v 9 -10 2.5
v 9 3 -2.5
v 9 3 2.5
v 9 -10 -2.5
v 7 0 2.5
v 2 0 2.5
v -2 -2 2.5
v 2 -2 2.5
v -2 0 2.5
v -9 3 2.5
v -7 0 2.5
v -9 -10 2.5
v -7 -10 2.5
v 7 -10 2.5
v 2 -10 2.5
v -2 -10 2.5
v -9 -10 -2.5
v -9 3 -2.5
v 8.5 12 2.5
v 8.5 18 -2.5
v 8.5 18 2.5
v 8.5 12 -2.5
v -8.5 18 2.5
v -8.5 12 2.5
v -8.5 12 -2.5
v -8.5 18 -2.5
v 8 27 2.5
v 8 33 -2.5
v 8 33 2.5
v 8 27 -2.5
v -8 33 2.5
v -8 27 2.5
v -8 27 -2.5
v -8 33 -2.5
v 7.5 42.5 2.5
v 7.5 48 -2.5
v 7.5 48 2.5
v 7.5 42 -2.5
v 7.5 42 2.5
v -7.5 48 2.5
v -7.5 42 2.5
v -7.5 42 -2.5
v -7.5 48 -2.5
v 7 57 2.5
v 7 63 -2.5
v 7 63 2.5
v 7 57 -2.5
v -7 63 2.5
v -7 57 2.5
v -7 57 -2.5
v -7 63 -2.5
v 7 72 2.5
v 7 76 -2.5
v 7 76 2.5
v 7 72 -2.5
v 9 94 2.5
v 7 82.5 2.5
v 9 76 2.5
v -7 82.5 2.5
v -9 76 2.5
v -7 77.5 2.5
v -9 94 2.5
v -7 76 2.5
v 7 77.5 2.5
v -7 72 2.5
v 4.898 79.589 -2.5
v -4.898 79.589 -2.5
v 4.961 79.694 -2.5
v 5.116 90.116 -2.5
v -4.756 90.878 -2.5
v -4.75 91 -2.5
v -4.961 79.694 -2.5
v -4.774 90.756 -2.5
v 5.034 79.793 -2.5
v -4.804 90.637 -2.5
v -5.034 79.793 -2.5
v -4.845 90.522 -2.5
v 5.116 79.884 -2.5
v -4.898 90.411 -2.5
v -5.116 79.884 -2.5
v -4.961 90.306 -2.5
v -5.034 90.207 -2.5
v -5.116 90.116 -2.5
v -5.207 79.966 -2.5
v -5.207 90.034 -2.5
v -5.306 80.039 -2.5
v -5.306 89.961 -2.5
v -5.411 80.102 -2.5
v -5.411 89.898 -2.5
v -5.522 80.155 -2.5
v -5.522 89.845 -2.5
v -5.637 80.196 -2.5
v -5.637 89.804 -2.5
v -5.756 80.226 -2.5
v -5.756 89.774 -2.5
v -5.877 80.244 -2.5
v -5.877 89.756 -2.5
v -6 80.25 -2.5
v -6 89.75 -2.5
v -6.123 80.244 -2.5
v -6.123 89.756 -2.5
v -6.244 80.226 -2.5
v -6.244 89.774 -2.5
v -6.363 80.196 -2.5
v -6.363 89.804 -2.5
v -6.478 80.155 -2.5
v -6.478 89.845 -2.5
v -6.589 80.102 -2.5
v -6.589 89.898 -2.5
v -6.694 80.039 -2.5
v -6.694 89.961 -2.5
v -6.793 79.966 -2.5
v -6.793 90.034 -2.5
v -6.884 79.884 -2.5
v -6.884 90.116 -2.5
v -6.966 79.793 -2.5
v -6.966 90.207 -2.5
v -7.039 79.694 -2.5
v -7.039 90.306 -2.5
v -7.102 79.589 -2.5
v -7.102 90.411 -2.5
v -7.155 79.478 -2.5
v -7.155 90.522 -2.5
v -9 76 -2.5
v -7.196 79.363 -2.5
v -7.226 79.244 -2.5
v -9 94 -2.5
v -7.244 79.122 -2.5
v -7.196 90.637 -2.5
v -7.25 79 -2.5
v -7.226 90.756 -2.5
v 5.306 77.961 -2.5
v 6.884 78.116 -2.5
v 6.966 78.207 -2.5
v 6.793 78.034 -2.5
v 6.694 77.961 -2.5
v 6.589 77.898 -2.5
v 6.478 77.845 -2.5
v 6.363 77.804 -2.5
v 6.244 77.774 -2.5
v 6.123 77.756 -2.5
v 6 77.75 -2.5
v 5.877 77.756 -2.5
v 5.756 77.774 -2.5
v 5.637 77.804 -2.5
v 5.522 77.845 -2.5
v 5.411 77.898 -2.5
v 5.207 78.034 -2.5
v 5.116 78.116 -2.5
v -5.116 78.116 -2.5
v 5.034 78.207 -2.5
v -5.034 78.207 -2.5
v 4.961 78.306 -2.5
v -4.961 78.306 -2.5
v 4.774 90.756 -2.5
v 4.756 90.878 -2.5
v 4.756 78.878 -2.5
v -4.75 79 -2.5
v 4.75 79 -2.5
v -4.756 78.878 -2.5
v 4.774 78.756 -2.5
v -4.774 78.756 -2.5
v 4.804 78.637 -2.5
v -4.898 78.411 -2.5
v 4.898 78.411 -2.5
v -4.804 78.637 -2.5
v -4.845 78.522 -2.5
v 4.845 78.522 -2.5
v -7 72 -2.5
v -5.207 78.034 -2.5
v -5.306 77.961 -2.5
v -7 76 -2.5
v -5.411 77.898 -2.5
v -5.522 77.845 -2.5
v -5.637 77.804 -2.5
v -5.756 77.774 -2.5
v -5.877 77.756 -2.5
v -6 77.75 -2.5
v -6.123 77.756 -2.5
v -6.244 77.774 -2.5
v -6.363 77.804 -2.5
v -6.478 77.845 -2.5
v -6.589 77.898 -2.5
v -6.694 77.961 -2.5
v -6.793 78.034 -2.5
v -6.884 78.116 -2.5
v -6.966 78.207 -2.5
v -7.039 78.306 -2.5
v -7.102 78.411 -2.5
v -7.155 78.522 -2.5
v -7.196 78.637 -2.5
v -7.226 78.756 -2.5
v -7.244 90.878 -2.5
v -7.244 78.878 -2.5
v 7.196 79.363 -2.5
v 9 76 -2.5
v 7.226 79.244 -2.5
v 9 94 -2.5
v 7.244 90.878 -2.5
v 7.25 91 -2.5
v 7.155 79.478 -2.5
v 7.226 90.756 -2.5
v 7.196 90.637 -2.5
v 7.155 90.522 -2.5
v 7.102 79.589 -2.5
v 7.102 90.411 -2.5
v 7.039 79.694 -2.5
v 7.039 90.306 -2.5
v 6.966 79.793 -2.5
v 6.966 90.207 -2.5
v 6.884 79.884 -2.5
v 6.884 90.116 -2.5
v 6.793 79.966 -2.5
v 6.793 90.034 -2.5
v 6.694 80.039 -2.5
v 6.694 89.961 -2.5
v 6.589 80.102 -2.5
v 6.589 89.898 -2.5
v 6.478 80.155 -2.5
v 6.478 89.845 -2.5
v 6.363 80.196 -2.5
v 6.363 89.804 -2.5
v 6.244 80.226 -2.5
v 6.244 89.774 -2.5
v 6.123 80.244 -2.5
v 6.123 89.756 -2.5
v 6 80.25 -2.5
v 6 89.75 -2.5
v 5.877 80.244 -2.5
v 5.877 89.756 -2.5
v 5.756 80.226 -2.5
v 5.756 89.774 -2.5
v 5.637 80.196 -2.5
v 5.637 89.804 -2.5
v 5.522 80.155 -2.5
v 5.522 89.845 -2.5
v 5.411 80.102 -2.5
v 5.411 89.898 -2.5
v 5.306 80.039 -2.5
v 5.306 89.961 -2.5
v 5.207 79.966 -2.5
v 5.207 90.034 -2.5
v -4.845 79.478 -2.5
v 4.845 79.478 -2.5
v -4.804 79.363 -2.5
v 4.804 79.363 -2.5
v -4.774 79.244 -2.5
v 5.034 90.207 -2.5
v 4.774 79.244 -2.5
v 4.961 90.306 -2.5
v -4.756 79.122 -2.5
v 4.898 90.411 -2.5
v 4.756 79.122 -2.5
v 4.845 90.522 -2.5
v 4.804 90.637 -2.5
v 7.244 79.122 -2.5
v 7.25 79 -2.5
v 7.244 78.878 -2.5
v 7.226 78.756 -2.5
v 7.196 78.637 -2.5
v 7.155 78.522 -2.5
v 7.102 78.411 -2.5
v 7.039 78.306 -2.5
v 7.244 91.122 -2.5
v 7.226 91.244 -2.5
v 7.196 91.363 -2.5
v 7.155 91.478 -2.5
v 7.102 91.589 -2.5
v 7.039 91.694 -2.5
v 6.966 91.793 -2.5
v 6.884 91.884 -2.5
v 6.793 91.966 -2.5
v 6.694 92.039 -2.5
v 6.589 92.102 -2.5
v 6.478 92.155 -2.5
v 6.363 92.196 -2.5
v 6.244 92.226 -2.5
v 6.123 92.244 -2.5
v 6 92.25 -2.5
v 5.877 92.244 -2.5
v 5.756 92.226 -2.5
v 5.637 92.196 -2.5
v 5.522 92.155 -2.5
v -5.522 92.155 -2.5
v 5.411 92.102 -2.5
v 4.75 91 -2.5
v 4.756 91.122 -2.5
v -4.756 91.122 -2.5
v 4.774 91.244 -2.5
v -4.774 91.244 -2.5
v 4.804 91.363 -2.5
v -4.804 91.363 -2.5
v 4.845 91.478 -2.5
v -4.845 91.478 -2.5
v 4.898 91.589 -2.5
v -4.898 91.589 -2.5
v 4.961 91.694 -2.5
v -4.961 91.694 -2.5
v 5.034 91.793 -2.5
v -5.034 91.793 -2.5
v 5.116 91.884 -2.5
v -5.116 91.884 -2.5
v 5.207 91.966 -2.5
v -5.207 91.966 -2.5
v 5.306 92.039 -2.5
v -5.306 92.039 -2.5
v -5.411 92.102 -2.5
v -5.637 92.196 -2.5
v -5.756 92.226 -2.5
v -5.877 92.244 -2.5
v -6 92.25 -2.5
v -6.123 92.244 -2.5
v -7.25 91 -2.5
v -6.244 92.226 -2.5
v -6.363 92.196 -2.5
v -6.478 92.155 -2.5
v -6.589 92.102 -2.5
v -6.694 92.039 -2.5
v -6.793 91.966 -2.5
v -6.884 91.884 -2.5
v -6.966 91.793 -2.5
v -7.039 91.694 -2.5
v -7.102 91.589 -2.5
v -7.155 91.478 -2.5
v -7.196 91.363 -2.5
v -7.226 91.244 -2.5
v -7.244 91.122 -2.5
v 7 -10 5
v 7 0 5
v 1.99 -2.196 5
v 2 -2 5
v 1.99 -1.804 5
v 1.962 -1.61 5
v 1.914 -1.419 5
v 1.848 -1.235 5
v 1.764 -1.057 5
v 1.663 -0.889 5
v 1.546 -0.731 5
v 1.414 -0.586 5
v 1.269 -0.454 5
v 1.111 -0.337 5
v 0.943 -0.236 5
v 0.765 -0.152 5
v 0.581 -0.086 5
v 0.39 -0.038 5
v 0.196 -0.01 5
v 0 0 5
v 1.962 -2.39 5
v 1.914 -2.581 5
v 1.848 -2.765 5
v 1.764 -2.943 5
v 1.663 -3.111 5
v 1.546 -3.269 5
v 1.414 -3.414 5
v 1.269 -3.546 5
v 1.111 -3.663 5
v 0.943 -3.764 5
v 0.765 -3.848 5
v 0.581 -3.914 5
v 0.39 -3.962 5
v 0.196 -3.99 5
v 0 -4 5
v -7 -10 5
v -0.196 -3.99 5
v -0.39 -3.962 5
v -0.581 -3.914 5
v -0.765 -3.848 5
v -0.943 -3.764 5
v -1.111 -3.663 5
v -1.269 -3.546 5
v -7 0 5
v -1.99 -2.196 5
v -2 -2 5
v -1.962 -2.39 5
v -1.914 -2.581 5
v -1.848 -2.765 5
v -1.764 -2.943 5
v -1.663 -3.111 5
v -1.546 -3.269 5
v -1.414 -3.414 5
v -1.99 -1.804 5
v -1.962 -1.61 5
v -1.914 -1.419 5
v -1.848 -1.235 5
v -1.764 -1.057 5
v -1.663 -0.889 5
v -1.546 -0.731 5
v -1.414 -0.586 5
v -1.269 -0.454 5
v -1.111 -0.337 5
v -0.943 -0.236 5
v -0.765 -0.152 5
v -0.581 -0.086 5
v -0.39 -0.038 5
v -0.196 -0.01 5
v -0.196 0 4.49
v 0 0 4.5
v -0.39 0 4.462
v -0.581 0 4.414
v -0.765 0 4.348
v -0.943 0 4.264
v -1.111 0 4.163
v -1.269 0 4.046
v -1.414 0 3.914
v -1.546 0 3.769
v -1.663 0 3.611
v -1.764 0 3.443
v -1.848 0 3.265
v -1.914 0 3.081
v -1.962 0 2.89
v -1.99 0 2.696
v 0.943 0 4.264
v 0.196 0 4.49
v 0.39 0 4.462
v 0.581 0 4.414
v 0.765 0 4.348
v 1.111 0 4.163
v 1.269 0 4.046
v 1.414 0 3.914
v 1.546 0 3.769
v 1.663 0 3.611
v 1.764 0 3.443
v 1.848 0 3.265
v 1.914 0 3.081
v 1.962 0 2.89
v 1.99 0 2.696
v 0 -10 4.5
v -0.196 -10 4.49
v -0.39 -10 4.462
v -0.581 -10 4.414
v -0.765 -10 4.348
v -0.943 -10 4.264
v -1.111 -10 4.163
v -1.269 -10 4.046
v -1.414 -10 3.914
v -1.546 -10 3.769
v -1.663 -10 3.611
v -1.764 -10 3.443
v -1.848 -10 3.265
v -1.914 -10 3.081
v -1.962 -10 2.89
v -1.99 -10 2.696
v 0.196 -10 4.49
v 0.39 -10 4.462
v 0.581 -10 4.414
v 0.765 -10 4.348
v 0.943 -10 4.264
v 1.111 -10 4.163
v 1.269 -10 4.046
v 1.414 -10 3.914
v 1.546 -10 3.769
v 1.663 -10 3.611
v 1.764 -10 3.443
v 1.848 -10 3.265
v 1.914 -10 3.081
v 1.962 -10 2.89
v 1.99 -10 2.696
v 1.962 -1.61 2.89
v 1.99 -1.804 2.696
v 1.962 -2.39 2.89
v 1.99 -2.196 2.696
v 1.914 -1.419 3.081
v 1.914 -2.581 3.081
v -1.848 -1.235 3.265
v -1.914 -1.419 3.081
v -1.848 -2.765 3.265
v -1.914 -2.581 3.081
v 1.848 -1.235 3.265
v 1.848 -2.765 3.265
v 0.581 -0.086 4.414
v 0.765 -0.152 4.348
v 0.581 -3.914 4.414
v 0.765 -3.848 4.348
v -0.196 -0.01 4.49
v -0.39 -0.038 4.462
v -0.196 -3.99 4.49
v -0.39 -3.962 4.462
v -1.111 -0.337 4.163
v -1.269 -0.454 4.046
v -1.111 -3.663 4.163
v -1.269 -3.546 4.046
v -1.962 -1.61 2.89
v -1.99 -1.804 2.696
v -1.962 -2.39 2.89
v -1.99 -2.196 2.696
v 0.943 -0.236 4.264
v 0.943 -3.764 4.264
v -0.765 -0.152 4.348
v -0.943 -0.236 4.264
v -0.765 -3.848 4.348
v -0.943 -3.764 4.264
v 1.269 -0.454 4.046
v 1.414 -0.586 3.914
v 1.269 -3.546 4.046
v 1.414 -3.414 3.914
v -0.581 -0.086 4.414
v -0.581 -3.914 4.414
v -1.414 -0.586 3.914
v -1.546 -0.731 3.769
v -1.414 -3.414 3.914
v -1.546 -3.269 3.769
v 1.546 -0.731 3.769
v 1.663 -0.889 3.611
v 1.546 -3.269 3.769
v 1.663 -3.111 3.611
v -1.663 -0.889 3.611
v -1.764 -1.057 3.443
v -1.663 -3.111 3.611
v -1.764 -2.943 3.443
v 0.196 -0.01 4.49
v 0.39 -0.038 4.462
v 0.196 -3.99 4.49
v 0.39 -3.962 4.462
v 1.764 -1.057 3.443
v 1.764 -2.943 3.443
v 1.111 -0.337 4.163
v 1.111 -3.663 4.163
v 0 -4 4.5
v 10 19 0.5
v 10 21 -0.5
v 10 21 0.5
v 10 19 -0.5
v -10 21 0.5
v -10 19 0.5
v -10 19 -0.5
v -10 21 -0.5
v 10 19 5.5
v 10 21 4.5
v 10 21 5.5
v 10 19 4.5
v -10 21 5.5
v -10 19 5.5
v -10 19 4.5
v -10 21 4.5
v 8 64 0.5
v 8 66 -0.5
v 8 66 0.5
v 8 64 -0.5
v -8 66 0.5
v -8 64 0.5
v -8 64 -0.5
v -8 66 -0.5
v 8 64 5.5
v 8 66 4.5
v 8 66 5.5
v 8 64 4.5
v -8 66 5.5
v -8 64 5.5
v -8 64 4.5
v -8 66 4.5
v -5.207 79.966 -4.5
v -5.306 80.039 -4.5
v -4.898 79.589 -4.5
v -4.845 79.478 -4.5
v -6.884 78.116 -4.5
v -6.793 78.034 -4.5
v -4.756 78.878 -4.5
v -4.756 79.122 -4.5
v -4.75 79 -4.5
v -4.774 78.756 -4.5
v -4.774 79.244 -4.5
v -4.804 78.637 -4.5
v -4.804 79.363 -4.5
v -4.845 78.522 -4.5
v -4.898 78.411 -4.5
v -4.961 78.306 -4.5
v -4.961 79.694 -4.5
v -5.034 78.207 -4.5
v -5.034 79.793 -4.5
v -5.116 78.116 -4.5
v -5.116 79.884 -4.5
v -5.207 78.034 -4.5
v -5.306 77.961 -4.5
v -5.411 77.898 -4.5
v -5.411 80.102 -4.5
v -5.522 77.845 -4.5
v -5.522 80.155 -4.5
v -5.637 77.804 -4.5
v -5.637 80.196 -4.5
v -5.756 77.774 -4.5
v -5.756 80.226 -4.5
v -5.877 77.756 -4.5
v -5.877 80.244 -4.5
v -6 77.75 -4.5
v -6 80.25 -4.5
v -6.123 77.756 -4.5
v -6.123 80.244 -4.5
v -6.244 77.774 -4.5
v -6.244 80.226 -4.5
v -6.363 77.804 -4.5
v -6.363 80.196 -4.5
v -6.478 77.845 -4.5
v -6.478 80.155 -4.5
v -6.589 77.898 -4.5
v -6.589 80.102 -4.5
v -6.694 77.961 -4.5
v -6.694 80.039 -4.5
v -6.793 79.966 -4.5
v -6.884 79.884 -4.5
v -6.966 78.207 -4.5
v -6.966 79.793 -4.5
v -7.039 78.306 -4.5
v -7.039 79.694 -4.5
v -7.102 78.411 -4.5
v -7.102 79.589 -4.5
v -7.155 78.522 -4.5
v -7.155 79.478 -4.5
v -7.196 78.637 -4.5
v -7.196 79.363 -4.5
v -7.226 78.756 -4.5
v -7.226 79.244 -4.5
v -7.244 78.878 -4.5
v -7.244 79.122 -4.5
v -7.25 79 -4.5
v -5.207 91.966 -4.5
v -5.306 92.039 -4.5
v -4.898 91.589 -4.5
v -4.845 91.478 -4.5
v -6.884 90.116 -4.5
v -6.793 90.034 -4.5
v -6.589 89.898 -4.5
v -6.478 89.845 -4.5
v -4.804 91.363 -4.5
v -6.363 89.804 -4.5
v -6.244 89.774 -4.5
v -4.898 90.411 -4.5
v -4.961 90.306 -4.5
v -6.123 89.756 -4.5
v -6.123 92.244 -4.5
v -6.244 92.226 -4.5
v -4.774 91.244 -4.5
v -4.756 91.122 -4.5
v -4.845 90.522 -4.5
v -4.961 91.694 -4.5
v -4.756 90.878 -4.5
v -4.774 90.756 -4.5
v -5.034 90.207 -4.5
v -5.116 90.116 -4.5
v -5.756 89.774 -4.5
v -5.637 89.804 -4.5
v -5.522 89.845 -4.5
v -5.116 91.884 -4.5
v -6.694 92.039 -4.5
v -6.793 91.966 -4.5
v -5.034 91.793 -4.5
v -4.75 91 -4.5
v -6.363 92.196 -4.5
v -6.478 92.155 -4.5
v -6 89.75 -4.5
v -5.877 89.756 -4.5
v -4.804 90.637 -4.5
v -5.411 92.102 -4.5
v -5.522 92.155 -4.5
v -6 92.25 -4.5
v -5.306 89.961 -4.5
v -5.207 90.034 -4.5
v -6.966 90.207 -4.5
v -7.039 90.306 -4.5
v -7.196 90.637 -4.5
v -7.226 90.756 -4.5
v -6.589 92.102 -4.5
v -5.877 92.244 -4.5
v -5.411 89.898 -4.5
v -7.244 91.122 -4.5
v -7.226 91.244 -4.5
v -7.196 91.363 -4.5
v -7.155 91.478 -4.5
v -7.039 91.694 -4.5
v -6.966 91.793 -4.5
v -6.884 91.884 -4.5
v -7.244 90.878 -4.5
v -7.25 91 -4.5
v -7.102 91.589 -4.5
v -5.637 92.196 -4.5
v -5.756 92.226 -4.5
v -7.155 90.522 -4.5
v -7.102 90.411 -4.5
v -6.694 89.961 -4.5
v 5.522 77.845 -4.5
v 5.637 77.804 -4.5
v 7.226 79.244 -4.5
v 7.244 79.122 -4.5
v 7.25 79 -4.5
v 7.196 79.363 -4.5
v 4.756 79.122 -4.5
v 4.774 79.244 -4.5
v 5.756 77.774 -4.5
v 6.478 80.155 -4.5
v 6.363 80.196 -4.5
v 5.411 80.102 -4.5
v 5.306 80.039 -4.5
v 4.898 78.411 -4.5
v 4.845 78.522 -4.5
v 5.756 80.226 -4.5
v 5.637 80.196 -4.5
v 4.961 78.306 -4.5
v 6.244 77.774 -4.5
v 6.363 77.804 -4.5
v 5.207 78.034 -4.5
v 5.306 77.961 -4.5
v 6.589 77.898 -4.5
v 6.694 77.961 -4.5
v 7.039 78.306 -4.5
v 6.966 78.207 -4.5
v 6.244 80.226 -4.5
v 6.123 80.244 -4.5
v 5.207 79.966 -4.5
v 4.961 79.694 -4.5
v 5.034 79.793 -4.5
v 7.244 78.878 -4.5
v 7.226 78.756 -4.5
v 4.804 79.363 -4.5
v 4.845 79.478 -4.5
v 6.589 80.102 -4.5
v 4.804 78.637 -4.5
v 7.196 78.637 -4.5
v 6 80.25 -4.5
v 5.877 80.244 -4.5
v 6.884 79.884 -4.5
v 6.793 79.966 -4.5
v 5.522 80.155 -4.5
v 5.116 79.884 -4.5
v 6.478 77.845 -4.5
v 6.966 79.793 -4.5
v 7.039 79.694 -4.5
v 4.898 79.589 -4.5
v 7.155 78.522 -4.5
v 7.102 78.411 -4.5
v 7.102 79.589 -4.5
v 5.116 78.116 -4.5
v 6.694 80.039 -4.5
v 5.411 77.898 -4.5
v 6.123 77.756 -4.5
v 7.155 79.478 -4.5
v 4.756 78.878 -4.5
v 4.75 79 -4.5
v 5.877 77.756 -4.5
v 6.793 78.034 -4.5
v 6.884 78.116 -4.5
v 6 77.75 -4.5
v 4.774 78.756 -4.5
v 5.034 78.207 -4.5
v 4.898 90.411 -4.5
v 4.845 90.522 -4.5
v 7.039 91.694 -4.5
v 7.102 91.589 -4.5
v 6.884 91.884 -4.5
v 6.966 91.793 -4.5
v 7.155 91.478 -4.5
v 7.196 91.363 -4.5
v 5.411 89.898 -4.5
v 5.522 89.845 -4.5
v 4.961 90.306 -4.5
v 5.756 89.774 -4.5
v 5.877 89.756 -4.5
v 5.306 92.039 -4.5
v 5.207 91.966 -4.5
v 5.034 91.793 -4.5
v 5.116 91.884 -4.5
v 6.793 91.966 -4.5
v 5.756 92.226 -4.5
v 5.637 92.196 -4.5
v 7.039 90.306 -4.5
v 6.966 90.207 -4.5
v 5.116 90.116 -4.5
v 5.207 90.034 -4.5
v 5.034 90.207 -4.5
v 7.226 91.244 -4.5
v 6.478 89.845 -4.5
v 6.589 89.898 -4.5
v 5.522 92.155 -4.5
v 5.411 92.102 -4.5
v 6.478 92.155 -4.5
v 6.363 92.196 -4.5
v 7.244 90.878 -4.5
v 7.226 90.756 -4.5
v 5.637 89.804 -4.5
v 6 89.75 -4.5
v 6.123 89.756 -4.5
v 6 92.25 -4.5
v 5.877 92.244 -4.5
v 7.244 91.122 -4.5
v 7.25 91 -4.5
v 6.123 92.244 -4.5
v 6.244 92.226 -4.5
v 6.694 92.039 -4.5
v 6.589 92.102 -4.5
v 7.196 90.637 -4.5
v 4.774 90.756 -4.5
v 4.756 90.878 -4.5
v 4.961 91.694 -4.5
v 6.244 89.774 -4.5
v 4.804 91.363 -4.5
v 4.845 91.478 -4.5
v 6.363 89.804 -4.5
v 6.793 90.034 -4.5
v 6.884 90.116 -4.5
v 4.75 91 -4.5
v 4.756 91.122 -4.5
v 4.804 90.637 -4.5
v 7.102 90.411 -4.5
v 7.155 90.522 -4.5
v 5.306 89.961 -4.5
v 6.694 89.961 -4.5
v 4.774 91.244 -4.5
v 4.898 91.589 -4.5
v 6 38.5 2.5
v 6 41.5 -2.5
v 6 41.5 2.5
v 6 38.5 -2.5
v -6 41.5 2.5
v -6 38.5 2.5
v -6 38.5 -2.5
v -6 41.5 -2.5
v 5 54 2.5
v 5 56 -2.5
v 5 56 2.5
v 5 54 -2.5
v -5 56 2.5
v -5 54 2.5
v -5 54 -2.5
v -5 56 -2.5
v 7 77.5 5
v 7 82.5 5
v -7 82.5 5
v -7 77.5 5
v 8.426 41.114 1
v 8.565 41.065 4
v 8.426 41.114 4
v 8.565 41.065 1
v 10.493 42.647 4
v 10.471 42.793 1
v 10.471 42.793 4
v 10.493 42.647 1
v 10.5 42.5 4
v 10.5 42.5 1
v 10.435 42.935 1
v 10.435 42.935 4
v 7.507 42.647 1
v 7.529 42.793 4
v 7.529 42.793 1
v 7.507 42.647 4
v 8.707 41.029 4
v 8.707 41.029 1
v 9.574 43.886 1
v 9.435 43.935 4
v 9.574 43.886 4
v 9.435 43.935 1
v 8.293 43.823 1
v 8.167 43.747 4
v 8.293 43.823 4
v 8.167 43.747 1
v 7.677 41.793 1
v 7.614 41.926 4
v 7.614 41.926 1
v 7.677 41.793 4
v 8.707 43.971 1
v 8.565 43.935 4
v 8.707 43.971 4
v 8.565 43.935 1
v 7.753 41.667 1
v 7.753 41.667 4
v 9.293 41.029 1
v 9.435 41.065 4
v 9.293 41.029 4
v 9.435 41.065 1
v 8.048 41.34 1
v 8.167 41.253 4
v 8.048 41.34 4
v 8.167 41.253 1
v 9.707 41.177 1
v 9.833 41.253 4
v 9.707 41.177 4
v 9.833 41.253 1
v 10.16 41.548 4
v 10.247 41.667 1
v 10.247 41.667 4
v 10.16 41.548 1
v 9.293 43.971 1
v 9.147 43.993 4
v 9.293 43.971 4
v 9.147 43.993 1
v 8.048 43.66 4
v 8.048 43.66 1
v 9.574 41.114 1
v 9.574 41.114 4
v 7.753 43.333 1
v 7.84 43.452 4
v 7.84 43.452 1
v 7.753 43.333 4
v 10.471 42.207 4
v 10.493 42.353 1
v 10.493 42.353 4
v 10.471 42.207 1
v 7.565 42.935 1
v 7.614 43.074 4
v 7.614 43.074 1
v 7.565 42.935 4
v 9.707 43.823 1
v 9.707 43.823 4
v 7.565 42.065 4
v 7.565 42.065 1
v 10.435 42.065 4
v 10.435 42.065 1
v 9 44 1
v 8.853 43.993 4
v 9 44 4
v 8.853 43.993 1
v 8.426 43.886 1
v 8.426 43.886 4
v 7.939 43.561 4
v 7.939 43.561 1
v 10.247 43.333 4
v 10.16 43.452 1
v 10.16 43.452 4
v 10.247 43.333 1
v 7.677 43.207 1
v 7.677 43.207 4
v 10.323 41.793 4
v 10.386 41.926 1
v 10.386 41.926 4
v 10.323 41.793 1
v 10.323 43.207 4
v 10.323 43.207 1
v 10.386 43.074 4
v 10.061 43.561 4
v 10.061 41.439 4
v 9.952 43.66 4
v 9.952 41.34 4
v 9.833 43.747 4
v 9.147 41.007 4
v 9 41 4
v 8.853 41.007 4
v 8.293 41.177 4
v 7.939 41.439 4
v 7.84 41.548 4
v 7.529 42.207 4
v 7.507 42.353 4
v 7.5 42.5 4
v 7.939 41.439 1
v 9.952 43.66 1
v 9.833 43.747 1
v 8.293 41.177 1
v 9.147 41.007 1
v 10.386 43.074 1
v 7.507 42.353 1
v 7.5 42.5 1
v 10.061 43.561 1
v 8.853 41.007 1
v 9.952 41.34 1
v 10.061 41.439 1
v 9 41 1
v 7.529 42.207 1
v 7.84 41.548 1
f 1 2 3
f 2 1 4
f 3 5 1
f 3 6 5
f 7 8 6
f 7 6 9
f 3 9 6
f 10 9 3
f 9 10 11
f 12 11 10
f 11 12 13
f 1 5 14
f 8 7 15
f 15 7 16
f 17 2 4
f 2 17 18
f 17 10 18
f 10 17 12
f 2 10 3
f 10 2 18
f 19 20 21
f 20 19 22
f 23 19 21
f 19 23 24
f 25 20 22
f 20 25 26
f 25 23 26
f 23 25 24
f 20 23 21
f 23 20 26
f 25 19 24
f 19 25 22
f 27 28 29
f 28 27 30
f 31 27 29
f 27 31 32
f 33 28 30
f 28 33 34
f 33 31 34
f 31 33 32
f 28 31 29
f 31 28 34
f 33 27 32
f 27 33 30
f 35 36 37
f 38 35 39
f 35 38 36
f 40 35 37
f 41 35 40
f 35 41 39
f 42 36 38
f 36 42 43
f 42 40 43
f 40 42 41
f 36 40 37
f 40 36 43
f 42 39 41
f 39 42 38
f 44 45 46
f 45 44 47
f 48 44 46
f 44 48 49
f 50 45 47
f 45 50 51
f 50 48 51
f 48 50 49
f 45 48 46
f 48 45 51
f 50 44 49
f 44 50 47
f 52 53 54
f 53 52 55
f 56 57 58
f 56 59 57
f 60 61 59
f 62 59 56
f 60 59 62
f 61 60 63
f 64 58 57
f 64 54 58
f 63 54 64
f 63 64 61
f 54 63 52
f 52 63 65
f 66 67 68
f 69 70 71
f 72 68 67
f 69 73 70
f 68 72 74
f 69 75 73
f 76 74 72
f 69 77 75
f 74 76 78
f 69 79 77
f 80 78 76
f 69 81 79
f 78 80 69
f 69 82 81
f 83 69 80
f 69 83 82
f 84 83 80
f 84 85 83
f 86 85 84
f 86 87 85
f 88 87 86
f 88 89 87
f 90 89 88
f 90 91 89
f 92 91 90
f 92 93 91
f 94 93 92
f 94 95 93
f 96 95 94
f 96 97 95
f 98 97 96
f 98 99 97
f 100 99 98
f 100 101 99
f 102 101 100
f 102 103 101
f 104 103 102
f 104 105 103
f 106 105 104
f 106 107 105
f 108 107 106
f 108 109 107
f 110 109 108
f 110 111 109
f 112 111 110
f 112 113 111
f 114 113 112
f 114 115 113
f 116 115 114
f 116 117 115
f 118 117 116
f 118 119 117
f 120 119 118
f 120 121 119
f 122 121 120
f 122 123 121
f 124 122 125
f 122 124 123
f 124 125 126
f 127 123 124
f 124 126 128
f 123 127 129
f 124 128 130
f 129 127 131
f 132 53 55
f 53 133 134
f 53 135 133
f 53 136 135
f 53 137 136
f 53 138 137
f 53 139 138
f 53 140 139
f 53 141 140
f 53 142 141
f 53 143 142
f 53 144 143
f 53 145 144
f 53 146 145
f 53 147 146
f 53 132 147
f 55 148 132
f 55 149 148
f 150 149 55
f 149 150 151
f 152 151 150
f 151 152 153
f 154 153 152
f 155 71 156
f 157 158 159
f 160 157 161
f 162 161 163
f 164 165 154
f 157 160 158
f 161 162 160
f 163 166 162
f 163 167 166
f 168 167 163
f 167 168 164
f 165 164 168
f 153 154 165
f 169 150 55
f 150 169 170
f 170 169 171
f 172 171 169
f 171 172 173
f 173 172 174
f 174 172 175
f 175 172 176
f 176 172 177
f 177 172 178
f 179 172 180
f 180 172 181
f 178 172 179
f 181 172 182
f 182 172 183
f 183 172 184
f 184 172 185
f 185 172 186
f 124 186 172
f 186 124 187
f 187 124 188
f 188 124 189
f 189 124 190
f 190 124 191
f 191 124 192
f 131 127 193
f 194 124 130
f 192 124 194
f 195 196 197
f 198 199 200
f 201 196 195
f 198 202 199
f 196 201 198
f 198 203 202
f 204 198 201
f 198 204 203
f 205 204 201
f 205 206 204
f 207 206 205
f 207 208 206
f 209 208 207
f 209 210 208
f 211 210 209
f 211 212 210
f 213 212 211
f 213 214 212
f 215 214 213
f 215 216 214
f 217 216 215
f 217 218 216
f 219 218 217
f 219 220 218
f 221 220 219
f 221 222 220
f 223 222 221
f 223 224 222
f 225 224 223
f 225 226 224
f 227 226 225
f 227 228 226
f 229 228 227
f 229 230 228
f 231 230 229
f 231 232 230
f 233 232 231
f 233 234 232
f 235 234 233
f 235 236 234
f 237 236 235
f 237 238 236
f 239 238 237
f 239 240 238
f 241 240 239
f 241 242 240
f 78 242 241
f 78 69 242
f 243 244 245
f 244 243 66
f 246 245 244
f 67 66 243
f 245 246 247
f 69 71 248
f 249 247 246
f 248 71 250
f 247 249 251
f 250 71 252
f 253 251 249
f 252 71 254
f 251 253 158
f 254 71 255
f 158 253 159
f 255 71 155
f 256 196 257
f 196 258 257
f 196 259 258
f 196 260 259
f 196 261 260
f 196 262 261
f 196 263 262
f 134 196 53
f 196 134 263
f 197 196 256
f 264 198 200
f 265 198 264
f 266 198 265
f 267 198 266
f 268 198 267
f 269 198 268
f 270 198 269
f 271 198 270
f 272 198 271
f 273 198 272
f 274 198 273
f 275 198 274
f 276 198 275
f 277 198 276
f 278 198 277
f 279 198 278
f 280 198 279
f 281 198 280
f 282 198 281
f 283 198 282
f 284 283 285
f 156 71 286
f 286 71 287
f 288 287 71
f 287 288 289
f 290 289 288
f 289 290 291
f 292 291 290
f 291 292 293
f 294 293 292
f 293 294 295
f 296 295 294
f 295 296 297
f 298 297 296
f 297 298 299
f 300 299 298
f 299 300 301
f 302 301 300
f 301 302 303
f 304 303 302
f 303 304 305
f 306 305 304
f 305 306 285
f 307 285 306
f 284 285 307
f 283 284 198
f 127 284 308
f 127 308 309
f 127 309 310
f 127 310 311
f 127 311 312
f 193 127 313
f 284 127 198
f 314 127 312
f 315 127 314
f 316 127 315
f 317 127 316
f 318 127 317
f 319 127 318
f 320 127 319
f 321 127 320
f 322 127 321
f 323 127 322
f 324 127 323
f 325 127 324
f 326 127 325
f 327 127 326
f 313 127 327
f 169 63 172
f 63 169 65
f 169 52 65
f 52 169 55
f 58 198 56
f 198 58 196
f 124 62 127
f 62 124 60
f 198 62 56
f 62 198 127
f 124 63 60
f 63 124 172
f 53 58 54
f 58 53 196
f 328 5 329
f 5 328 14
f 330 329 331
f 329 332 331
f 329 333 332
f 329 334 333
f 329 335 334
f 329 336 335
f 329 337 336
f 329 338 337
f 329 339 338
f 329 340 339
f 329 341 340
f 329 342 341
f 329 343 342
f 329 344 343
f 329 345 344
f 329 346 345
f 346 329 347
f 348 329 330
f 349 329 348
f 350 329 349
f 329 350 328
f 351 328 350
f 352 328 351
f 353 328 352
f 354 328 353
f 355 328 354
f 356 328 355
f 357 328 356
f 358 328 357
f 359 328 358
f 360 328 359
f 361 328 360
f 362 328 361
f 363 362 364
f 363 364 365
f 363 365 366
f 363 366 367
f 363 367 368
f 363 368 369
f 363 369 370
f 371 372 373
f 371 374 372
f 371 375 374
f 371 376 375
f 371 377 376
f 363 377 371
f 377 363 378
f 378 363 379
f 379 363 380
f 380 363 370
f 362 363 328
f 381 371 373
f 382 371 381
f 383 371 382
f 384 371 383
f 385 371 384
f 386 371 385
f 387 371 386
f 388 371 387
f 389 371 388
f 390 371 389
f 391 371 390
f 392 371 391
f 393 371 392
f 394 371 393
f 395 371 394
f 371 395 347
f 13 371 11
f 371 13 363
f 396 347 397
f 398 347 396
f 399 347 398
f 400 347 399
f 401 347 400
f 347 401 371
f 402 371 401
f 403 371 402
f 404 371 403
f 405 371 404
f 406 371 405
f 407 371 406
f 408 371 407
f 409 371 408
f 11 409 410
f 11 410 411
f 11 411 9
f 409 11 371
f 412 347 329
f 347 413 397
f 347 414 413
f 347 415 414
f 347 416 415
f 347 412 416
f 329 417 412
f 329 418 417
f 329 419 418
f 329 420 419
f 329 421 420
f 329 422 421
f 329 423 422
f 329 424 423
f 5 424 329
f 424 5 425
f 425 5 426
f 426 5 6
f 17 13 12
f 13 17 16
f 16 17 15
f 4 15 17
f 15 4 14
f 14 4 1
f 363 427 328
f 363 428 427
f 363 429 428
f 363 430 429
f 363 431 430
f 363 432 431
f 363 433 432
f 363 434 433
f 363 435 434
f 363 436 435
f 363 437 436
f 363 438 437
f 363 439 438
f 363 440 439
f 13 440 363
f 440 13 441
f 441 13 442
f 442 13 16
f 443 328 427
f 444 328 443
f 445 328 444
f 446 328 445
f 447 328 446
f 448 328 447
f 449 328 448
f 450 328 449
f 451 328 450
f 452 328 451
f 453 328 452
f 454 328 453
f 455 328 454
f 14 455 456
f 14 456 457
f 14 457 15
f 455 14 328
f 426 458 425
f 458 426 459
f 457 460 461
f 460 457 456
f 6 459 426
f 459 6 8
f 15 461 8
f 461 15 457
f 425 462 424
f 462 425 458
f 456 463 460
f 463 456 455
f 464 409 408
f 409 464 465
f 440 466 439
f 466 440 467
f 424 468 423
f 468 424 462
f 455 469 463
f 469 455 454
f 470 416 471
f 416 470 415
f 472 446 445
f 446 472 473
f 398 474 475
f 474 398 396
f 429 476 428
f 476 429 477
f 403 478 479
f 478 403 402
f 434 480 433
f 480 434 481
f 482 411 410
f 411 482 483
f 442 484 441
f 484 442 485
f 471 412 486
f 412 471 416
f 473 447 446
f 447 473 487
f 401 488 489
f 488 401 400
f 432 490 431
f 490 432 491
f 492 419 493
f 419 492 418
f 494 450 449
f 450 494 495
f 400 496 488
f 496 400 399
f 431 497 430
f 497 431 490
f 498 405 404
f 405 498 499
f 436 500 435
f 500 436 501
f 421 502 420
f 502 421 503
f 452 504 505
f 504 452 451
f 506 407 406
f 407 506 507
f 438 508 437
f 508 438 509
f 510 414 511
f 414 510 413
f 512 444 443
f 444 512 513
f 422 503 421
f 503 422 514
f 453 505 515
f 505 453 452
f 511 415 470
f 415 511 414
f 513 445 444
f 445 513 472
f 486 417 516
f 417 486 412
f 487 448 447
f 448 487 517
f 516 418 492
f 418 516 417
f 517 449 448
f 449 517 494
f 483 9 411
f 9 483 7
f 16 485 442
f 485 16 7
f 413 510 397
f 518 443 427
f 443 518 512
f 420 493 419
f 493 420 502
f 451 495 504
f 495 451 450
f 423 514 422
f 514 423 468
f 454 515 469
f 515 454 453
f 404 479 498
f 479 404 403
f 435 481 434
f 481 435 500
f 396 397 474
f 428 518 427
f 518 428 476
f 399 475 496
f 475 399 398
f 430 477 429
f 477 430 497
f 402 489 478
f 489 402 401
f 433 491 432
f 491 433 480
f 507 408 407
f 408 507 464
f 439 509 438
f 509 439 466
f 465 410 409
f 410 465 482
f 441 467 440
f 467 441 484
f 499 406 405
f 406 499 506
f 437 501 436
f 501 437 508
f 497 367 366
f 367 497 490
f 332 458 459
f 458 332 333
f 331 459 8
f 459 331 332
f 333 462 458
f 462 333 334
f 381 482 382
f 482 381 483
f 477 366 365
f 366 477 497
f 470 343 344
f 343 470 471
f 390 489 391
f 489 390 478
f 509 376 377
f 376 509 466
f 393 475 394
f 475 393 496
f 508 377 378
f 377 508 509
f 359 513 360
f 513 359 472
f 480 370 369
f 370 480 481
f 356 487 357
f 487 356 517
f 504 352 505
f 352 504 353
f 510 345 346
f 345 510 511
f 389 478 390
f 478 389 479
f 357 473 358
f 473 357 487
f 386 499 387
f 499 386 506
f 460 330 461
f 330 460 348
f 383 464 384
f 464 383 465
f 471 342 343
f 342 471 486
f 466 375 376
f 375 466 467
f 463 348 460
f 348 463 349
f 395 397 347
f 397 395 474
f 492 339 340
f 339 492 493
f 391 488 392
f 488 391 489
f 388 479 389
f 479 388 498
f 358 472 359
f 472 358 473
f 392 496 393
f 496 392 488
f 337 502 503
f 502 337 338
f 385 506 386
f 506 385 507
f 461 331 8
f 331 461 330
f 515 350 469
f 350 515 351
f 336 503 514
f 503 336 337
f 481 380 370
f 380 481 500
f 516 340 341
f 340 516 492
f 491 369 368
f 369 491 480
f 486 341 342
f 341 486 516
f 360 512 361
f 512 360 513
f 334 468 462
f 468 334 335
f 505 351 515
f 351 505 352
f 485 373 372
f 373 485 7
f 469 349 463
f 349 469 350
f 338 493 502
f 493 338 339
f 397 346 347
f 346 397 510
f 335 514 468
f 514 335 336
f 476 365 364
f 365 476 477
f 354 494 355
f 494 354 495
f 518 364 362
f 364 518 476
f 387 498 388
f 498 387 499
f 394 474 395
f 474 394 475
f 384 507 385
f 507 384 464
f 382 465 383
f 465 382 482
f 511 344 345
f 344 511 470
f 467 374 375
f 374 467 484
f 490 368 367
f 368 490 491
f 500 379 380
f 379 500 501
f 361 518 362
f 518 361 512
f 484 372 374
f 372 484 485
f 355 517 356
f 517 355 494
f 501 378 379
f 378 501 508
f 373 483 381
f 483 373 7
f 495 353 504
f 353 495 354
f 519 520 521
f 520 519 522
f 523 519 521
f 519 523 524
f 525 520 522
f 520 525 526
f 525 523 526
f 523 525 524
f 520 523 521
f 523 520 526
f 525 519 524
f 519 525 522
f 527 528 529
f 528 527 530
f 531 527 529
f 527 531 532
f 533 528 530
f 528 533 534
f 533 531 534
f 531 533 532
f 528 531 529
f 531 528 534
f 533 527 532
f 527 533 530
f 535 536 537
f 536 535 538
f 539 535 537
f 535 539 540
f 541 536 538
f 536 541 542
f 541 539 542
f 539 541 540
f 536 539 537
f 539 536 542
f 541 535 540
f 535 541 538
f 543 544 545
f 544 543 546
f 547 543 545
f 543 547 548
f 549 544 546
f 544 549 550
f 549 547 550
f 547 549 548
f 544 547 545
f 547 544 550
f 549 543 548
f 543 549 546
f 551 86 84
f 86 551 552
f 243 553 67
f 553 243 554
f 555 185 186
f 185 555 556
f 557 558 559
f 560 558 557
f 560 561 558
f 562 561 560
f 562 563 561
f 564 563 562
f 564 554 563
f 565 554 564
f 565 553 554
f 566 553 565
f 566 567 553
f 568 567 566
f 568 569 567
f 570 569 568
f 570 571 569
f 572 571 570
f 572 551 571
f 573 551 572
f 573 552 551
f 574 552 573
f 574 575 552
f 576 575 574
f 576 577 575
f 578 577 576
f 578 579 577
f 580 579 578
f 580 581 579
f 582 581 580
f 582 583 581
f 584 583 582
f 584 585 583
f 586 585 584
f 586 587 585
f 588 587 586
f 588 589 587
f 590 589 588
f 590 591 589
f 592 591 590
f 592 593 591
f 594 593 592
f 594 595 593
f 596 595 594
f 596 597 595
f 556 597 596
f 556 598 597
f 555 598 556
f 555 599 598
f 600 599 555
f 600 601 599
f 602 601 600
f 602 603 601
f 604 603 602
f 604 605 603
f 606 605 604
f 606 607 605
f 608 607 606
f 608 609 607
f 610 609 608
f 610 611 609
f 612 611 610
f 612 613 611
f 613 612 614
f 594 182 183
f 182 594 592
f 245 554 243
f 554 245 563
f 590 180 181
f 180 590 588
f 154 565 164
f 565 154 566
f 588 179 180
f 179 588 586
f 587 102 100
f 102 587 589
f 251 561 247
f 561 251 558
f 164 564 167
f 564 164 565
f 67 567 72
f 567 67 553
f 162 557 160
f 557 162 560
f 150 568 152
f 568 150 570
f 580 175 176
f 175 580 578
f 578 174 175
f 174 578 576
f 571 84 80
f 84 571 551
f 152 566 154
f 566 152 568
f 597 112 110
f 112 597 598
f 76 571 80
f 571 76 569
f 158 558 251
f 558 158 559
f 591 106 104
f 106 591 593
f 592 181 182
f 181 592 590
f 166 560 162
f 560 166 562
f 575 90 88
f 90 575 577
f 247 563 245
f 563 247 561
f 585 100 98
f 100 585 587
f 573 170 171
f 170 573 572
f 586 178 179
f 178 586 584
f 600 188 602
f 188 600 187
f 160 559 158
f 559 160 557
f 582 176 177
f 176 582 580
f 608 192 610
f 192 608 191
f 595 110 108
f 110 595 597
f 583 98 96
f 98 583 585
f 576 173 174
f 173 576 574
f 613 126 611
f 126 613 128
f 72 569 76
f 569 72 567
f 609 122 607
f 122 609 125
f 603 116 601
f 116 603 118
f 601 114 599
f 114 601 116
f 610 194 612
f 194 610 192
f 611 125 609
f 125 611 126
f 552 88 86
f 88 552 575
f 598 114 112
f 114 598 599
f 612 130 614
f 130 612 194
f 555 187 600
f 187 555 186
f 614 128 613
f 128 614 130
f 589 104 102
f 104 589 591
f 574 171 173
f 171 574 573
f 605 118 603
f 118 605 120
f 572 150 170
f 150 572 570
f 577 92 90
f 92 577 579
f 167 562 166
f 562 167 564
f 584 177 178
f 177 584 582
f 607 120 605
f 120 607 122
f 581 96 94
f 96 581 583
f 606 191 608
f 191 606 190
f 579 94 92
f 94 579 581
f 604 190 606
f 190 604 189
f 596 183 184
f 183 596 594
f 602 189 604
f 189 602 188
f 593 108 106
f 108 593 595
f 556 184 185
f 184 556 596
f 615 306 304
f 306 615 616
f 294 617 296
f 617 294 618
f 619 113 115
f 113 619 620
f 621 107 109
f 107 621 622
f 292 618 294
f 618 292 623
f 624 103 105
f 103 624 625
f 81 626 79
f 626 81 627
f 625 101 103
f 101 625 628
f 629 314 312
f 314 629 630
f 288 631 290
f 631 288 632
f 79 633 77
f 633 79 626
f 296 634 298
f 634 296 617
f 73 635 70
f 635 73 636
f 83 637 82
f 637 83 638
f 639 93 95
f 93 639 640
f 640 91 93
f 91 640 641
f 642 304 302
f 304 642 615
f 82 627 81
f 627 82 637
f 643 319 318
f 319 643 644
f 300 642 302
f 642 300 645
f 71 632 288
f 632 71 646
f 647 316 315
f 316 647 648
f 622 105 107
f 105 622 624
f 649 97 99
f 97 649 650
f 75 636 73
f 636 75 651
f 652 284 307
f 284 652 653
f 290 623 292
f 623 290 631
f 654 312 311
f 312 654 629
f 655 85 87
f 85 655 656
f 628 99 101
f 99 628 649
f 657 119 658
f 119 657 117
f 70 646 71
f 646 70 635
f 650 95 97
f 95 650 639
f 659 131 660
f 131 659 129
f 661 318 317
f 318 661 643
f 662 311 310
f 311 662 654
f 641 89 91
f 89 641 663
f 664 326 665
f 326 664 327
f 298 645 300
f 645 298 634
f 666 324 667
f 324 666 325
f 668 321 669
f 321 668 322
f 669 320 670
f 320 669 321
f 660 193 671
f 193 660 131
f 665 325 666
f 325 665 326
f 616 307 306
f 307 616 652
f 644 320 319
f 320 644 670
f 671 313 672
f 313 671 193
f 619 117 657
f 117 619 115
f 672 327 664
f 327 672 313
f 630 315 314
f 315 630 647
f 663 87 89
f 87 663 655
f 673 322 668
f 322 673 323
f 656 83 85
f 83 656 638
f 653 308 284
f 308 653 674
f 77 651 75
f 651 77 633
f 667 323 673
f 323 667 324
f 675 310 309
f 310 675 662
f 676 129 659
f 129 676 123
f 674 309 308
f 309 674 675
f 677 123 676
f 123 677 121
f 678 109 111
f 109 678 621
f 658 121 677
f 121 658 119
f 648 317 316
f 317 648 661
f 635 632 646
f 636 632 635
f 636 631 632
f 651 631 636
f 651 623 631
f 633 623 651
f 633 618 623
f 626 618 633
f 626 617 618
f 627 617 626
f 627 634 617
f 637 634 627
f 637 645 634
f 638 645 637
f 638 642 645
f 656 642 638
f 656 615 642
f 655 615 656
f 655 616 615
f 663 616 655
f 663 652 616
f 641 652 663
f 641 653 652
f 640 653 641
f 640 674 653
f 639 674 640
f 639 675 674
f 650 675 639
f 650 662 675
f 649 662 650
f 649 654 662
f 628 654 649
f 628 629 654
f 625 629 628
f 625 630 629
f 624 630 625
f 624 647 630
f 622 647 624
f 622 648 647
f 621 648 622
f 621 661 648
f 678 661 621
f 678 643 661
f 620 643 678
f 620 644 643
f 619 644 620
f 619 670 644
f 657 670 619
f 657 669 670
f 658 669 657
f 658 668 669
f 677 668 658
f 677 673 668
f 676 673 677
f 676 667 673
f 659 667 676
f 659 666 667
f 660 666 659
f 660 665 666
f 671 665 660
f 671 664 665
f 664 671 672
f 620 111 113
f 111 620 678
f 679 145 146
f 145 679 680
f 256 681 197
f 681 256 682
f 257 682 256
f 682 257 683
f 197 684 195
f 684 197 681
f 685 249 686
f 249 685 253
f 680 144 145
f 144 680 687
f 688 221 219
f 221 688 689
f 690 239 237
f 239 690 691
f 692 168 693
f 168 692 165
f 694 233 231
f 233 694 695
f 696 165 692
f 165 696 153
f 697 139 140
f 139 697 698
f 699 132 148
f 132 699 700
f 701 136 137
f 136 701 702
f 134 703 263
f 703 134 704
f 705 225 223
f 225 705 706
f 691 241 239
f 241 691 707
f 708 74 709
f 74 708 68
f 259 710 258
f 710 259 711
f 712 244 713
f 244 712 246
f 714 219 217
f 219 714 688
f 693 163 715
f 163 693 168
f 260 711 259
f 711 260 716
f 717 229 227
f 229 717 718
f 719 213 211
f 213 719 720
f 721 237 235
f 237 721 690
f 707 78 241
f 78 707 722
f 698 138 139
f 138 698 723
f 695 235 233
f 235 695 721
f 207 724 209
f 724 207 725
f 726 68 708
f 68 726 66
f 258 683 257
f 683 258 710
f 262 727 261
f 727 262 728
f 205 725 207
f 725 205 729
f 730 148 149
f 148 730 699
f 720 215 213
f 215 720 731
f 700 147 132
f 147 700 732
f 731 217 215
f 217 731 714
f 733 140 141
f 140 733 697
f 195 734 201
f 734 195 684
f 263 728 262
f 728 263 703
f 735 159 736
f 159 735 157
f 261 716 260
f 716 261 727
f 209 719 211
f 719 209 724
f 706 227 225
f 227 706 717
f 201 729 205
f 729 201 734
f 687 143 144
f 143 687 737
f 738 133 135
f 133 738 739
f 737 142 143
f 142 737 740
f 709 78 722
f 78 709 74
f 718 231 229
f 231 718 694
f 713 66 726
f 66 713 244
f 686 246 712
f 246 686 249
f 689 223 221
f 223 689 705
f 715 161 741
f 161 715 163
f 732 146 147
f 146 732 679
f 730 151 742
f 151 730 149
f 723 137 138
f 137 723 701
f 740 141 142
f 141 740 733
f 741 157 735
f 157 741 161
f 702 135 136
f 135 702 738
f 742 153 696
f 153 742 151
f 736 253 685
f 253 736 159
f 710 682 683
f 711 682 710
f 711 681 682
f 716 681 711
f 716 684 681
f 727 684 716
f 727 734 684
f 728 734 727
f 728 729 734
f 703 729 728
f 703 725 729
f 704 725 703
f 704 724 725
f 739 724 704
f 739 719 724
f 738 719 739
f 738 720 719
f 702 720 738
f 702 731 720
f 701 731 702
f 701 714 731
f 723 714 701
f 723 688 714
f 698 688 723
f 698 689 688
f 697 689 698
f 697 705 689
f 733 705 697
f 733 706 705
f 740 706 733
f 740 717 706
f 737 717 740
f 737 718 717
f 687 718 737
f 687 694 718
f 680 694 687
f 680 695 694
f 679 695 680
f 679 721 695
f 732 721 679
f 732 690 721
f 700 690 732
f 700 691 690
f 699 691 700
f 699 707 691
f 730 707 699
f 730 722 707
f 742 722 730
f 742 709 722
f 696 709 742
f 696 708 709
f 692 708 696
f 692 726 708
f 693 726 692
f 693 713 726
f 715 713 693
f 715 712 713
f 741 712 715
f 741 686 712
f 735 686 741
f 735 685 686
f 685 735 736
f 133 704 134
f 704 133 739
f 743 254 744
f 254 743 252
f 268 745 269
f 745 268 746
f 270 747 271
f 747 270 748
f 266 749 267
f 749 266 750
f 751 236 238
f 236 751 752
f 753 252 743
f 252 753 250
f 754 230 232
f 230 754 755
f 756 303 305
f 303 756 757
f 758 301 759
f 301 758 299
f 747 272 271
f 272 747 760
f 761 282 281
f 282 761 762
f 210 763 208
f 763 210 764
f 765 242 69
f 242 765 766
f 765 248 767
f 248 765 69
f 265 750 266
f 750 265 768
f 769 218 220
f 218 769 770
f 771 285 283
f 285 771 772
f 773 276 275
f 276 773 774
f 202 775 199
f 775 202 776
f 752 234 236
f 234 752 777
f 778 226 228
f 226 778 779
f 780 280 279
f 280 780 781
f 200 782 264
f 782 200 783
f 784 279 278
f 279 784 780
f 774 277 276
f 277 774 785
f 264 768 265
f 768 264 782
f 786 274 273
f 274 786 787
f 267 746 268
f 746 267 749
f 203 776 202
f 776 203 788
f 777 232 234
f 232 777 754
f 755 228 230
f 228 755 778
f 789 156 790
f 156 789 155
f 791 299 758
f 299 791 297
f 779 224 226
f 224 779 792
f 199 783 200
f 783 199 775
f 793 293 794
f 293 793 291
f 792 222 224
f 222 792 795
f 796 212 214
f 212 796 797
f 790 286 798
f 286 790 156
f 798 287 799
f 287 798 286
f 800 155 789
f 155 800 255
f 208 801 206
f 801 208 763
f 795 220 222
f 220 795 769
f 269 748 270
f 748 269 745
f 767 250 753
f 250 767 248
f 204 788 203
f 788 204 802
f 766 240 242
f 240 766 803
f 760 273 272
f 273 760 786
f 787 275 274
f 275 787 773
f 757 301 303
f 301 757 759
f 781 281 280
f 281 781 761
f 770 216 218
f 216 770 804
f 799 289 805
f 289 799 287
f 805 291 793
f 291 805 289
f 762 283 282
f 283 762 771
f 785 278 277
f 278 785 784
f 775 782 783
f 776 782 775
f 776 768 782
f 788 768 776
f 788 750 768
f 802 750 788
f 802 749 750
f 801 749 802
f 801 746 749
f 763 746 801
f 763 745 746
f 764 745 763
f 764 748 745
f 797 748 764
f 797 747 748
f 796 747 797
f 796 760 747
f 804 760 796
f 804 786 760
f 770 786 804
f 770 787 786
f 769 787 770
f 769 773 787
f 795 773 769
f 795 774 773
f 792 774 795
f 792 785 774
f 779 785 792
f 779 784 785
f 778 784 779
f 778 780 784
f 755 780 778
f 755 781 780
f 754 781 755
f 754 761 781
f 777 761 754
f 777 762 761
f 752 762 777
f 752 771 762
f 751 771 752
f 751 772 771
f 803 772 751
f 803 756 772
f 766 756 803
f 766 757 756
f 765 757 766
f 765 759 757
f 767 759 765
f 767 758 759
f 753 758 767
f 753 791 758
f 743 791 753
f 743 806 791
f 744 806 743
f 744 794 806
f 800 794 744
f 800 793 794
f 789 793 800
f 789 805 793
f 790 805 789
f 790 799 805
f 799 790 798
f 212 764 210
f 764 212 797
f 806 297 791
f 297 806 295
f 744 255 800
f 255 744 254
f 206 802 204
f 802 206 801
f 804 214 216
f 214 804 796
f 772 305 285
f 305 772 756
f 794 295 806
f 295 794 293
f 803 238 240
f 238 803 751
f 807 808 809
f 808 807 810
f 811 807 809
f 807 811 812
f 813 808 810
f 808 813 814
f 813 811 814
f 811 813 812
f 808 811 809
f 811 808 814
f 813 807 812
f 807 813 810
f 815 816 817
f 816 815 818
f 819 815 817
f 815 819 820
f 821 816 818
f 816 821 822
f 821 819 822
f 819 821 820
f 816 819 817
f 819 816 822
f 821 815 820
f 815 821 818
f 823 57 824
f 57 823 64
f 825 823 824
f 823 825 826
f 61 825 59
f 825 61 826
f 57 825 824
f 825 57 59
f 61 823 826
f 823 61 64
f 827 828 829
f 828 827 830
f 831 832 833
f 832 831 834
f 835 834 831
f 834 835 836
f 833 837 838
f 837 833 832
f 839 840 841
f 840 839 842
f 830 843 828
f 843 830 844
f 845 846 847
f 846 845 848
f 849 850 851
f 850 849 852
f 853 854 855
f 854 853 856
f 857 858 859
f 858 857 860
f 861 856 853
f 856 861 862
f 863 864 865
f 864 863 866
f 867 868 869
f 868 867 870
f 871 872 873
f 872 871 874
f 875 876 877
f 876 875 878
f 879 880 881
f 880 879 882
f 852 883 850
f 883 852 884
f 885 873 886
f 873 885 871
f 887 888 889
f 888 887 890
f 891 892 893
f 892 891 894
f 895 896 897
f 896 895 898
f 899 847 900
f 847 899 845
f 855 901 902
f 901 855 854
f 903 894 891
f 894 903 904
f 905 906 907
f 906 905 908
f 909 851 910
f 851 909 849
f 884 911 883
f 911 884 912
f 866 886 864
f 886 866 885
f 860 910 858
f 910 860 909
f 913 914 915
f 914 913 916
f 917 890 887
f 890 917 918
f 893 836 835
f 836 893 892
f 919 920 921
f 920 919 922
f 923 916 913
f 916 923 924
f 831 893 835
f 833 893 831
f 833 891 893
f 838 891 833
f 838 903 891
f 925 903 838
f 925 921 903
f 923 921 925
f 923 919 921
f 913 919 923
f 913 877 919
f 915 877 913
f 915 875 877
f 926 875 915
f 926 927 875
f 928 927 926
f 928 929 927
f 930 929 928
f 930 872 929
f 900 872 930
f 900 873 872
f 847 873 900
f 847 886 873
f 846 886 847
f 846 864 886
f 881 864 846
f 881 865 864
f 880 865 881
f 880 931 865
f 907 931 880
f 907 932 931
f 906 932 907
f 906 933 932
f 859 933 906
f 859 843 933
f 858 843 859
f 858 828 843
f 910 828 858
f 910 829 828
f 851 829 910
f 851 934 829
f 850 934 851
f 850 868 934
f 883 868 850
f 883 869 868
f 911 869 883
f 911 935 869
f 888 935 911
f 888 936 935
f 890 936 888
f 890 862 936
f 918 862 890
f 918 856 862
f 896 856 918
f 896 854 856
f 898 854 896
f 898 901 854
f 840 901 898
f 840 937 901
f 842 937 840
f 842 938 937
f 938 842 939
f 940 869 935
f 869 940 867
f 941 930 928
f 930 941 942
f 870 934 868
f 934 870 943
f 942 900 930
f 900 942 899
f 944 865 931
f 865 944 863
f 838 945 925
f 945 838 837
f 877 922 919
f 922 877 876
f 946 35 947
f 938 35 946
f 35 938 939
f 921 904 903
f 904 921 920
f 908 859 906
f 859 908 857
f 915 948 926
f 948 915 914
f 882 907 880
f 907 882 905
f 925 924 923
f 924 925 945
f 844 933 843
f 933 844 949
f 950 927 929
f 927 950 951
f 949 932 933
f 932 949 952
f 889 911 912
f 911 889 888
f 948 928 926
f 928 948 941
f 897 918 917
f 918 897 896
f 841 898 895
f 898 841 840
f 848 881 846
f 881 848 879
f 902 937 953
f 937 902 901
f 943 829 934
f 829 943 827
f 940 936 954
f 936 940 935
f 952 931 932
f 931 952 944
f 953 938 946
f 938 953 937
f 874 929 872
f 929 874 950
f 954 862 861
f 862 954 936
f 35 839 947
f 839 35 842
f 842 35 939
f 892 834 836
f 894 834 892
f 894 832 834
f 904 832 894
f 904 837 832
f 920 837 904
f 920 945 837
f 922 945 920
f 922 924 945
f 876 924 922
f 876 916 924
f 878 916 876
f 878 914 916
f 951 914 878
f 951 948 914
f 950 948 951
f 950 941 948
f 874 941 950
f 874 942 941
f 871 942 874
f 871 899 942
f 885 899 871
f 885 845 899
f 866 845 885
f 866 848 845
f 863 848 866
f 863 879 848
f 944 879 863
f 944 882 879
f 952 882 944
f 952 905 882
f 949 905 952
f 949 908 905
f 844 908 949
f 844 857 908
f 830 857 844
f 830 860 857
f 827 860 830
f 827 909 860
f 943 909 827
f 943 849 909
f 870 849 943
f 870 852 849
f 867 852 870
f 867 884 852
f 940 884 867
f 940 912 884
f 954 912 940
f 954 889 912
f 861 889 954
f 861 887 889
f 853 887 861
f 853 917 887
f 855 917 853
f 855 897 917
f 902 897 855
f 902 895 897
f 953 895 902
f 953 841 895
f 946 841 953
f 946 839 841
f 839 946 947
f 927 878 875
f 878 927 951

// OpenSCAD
// 02_Arm.scad - 折叠臂（单支）
// 长度: 95mm，宽度: 18-14mm，厚度: 5mm
$fn = 64;
COLOR_FRAME  = [0.12, 0.12, 0.14];
COLOR_ORANGE = [0.90, 0.40, 0.02];

// 臂身（用多个截面叠加，模拟锥形）
color(COLOR_FRAME) {
    // 根部 (x=0): 宽18mm
    translate([0, 0, 0])
        cube([18, 6, 5], center=true);
    // 区间1
    translate([0, 15, 0])
        cube([17, 6, 5], center=true);
    // 区间2
    translate([0, 30, 0])
        cube([16, 6, 5], center=true);
    // 区间3
    translate([0, 45, 0])
        cube([15, 6, 5], center=true);
    // 区间4
    translate([0, 60, 0])
        cube([14, 6, 5], center=true);
    // 尖端 (x=85): 宽14mm
    translate([0, 75, 0])
        cube([14, 6, 5], center=true);
    // 电机平台
    translate([0, 85, 0])
        cube([18, 18, 5], center=true);
}

// 根部加强
color(COLOR_FRAME)
translate([0, -5, 0])
    cube([18, 10, 5], center=true);

// 铰链连接片
color(COLOR_ORANGE)
translate([0, -5, 2.5])
    difference() {
        cube([14, 10, 5], center=true);
        translate([0, -5, 0])
            rotate([90, 0, 0])
                cylinder(r=2, h=20, center=true);
        translate([0, 3, 0])
            cylinder(r=2, h=20, center=true);
    }

// 折叠止动槽
color(COLOR_FRAME)
translate([0, 40, 0])
    cube([12, 3, 5], center=true);

// 折叠定位凸起
color(COLOR_ORANGE)
translate([0, 55, 0])
    cube([10, 2, 5], center=true);

// 臂尖锁扣
color(COLOR_ORANGE)
translate([0, 80, 2.5])
    cube([14, 5, 5], center=true);

// 折叠止动齿（臂身上，折叠时与铰链配合）
for (z = [0, 5])
    color(COLOR_ORANGE)
    translate([0, 20, z])
        cube([20, 2, 1], center=true);
for (z = [0, 5])
    color(COLOR_ORANGE)
    translate([0, 65, z])
        cube([16, 2, 1], center=true);

// 电机安装孔 (12mm图案，M2.5)
for (x = [-6, 6])
    for (y = [-6, 6])
        translate([x, y + 85, -1])
            cylinder(r=1.25, h=7, center=true);

// 折叠状态定位孔（臂身侧面，用于折叠后固定）
translate([9, 42.5, 2.5])
    cylinder(r=1.5, h=3, center=true);
